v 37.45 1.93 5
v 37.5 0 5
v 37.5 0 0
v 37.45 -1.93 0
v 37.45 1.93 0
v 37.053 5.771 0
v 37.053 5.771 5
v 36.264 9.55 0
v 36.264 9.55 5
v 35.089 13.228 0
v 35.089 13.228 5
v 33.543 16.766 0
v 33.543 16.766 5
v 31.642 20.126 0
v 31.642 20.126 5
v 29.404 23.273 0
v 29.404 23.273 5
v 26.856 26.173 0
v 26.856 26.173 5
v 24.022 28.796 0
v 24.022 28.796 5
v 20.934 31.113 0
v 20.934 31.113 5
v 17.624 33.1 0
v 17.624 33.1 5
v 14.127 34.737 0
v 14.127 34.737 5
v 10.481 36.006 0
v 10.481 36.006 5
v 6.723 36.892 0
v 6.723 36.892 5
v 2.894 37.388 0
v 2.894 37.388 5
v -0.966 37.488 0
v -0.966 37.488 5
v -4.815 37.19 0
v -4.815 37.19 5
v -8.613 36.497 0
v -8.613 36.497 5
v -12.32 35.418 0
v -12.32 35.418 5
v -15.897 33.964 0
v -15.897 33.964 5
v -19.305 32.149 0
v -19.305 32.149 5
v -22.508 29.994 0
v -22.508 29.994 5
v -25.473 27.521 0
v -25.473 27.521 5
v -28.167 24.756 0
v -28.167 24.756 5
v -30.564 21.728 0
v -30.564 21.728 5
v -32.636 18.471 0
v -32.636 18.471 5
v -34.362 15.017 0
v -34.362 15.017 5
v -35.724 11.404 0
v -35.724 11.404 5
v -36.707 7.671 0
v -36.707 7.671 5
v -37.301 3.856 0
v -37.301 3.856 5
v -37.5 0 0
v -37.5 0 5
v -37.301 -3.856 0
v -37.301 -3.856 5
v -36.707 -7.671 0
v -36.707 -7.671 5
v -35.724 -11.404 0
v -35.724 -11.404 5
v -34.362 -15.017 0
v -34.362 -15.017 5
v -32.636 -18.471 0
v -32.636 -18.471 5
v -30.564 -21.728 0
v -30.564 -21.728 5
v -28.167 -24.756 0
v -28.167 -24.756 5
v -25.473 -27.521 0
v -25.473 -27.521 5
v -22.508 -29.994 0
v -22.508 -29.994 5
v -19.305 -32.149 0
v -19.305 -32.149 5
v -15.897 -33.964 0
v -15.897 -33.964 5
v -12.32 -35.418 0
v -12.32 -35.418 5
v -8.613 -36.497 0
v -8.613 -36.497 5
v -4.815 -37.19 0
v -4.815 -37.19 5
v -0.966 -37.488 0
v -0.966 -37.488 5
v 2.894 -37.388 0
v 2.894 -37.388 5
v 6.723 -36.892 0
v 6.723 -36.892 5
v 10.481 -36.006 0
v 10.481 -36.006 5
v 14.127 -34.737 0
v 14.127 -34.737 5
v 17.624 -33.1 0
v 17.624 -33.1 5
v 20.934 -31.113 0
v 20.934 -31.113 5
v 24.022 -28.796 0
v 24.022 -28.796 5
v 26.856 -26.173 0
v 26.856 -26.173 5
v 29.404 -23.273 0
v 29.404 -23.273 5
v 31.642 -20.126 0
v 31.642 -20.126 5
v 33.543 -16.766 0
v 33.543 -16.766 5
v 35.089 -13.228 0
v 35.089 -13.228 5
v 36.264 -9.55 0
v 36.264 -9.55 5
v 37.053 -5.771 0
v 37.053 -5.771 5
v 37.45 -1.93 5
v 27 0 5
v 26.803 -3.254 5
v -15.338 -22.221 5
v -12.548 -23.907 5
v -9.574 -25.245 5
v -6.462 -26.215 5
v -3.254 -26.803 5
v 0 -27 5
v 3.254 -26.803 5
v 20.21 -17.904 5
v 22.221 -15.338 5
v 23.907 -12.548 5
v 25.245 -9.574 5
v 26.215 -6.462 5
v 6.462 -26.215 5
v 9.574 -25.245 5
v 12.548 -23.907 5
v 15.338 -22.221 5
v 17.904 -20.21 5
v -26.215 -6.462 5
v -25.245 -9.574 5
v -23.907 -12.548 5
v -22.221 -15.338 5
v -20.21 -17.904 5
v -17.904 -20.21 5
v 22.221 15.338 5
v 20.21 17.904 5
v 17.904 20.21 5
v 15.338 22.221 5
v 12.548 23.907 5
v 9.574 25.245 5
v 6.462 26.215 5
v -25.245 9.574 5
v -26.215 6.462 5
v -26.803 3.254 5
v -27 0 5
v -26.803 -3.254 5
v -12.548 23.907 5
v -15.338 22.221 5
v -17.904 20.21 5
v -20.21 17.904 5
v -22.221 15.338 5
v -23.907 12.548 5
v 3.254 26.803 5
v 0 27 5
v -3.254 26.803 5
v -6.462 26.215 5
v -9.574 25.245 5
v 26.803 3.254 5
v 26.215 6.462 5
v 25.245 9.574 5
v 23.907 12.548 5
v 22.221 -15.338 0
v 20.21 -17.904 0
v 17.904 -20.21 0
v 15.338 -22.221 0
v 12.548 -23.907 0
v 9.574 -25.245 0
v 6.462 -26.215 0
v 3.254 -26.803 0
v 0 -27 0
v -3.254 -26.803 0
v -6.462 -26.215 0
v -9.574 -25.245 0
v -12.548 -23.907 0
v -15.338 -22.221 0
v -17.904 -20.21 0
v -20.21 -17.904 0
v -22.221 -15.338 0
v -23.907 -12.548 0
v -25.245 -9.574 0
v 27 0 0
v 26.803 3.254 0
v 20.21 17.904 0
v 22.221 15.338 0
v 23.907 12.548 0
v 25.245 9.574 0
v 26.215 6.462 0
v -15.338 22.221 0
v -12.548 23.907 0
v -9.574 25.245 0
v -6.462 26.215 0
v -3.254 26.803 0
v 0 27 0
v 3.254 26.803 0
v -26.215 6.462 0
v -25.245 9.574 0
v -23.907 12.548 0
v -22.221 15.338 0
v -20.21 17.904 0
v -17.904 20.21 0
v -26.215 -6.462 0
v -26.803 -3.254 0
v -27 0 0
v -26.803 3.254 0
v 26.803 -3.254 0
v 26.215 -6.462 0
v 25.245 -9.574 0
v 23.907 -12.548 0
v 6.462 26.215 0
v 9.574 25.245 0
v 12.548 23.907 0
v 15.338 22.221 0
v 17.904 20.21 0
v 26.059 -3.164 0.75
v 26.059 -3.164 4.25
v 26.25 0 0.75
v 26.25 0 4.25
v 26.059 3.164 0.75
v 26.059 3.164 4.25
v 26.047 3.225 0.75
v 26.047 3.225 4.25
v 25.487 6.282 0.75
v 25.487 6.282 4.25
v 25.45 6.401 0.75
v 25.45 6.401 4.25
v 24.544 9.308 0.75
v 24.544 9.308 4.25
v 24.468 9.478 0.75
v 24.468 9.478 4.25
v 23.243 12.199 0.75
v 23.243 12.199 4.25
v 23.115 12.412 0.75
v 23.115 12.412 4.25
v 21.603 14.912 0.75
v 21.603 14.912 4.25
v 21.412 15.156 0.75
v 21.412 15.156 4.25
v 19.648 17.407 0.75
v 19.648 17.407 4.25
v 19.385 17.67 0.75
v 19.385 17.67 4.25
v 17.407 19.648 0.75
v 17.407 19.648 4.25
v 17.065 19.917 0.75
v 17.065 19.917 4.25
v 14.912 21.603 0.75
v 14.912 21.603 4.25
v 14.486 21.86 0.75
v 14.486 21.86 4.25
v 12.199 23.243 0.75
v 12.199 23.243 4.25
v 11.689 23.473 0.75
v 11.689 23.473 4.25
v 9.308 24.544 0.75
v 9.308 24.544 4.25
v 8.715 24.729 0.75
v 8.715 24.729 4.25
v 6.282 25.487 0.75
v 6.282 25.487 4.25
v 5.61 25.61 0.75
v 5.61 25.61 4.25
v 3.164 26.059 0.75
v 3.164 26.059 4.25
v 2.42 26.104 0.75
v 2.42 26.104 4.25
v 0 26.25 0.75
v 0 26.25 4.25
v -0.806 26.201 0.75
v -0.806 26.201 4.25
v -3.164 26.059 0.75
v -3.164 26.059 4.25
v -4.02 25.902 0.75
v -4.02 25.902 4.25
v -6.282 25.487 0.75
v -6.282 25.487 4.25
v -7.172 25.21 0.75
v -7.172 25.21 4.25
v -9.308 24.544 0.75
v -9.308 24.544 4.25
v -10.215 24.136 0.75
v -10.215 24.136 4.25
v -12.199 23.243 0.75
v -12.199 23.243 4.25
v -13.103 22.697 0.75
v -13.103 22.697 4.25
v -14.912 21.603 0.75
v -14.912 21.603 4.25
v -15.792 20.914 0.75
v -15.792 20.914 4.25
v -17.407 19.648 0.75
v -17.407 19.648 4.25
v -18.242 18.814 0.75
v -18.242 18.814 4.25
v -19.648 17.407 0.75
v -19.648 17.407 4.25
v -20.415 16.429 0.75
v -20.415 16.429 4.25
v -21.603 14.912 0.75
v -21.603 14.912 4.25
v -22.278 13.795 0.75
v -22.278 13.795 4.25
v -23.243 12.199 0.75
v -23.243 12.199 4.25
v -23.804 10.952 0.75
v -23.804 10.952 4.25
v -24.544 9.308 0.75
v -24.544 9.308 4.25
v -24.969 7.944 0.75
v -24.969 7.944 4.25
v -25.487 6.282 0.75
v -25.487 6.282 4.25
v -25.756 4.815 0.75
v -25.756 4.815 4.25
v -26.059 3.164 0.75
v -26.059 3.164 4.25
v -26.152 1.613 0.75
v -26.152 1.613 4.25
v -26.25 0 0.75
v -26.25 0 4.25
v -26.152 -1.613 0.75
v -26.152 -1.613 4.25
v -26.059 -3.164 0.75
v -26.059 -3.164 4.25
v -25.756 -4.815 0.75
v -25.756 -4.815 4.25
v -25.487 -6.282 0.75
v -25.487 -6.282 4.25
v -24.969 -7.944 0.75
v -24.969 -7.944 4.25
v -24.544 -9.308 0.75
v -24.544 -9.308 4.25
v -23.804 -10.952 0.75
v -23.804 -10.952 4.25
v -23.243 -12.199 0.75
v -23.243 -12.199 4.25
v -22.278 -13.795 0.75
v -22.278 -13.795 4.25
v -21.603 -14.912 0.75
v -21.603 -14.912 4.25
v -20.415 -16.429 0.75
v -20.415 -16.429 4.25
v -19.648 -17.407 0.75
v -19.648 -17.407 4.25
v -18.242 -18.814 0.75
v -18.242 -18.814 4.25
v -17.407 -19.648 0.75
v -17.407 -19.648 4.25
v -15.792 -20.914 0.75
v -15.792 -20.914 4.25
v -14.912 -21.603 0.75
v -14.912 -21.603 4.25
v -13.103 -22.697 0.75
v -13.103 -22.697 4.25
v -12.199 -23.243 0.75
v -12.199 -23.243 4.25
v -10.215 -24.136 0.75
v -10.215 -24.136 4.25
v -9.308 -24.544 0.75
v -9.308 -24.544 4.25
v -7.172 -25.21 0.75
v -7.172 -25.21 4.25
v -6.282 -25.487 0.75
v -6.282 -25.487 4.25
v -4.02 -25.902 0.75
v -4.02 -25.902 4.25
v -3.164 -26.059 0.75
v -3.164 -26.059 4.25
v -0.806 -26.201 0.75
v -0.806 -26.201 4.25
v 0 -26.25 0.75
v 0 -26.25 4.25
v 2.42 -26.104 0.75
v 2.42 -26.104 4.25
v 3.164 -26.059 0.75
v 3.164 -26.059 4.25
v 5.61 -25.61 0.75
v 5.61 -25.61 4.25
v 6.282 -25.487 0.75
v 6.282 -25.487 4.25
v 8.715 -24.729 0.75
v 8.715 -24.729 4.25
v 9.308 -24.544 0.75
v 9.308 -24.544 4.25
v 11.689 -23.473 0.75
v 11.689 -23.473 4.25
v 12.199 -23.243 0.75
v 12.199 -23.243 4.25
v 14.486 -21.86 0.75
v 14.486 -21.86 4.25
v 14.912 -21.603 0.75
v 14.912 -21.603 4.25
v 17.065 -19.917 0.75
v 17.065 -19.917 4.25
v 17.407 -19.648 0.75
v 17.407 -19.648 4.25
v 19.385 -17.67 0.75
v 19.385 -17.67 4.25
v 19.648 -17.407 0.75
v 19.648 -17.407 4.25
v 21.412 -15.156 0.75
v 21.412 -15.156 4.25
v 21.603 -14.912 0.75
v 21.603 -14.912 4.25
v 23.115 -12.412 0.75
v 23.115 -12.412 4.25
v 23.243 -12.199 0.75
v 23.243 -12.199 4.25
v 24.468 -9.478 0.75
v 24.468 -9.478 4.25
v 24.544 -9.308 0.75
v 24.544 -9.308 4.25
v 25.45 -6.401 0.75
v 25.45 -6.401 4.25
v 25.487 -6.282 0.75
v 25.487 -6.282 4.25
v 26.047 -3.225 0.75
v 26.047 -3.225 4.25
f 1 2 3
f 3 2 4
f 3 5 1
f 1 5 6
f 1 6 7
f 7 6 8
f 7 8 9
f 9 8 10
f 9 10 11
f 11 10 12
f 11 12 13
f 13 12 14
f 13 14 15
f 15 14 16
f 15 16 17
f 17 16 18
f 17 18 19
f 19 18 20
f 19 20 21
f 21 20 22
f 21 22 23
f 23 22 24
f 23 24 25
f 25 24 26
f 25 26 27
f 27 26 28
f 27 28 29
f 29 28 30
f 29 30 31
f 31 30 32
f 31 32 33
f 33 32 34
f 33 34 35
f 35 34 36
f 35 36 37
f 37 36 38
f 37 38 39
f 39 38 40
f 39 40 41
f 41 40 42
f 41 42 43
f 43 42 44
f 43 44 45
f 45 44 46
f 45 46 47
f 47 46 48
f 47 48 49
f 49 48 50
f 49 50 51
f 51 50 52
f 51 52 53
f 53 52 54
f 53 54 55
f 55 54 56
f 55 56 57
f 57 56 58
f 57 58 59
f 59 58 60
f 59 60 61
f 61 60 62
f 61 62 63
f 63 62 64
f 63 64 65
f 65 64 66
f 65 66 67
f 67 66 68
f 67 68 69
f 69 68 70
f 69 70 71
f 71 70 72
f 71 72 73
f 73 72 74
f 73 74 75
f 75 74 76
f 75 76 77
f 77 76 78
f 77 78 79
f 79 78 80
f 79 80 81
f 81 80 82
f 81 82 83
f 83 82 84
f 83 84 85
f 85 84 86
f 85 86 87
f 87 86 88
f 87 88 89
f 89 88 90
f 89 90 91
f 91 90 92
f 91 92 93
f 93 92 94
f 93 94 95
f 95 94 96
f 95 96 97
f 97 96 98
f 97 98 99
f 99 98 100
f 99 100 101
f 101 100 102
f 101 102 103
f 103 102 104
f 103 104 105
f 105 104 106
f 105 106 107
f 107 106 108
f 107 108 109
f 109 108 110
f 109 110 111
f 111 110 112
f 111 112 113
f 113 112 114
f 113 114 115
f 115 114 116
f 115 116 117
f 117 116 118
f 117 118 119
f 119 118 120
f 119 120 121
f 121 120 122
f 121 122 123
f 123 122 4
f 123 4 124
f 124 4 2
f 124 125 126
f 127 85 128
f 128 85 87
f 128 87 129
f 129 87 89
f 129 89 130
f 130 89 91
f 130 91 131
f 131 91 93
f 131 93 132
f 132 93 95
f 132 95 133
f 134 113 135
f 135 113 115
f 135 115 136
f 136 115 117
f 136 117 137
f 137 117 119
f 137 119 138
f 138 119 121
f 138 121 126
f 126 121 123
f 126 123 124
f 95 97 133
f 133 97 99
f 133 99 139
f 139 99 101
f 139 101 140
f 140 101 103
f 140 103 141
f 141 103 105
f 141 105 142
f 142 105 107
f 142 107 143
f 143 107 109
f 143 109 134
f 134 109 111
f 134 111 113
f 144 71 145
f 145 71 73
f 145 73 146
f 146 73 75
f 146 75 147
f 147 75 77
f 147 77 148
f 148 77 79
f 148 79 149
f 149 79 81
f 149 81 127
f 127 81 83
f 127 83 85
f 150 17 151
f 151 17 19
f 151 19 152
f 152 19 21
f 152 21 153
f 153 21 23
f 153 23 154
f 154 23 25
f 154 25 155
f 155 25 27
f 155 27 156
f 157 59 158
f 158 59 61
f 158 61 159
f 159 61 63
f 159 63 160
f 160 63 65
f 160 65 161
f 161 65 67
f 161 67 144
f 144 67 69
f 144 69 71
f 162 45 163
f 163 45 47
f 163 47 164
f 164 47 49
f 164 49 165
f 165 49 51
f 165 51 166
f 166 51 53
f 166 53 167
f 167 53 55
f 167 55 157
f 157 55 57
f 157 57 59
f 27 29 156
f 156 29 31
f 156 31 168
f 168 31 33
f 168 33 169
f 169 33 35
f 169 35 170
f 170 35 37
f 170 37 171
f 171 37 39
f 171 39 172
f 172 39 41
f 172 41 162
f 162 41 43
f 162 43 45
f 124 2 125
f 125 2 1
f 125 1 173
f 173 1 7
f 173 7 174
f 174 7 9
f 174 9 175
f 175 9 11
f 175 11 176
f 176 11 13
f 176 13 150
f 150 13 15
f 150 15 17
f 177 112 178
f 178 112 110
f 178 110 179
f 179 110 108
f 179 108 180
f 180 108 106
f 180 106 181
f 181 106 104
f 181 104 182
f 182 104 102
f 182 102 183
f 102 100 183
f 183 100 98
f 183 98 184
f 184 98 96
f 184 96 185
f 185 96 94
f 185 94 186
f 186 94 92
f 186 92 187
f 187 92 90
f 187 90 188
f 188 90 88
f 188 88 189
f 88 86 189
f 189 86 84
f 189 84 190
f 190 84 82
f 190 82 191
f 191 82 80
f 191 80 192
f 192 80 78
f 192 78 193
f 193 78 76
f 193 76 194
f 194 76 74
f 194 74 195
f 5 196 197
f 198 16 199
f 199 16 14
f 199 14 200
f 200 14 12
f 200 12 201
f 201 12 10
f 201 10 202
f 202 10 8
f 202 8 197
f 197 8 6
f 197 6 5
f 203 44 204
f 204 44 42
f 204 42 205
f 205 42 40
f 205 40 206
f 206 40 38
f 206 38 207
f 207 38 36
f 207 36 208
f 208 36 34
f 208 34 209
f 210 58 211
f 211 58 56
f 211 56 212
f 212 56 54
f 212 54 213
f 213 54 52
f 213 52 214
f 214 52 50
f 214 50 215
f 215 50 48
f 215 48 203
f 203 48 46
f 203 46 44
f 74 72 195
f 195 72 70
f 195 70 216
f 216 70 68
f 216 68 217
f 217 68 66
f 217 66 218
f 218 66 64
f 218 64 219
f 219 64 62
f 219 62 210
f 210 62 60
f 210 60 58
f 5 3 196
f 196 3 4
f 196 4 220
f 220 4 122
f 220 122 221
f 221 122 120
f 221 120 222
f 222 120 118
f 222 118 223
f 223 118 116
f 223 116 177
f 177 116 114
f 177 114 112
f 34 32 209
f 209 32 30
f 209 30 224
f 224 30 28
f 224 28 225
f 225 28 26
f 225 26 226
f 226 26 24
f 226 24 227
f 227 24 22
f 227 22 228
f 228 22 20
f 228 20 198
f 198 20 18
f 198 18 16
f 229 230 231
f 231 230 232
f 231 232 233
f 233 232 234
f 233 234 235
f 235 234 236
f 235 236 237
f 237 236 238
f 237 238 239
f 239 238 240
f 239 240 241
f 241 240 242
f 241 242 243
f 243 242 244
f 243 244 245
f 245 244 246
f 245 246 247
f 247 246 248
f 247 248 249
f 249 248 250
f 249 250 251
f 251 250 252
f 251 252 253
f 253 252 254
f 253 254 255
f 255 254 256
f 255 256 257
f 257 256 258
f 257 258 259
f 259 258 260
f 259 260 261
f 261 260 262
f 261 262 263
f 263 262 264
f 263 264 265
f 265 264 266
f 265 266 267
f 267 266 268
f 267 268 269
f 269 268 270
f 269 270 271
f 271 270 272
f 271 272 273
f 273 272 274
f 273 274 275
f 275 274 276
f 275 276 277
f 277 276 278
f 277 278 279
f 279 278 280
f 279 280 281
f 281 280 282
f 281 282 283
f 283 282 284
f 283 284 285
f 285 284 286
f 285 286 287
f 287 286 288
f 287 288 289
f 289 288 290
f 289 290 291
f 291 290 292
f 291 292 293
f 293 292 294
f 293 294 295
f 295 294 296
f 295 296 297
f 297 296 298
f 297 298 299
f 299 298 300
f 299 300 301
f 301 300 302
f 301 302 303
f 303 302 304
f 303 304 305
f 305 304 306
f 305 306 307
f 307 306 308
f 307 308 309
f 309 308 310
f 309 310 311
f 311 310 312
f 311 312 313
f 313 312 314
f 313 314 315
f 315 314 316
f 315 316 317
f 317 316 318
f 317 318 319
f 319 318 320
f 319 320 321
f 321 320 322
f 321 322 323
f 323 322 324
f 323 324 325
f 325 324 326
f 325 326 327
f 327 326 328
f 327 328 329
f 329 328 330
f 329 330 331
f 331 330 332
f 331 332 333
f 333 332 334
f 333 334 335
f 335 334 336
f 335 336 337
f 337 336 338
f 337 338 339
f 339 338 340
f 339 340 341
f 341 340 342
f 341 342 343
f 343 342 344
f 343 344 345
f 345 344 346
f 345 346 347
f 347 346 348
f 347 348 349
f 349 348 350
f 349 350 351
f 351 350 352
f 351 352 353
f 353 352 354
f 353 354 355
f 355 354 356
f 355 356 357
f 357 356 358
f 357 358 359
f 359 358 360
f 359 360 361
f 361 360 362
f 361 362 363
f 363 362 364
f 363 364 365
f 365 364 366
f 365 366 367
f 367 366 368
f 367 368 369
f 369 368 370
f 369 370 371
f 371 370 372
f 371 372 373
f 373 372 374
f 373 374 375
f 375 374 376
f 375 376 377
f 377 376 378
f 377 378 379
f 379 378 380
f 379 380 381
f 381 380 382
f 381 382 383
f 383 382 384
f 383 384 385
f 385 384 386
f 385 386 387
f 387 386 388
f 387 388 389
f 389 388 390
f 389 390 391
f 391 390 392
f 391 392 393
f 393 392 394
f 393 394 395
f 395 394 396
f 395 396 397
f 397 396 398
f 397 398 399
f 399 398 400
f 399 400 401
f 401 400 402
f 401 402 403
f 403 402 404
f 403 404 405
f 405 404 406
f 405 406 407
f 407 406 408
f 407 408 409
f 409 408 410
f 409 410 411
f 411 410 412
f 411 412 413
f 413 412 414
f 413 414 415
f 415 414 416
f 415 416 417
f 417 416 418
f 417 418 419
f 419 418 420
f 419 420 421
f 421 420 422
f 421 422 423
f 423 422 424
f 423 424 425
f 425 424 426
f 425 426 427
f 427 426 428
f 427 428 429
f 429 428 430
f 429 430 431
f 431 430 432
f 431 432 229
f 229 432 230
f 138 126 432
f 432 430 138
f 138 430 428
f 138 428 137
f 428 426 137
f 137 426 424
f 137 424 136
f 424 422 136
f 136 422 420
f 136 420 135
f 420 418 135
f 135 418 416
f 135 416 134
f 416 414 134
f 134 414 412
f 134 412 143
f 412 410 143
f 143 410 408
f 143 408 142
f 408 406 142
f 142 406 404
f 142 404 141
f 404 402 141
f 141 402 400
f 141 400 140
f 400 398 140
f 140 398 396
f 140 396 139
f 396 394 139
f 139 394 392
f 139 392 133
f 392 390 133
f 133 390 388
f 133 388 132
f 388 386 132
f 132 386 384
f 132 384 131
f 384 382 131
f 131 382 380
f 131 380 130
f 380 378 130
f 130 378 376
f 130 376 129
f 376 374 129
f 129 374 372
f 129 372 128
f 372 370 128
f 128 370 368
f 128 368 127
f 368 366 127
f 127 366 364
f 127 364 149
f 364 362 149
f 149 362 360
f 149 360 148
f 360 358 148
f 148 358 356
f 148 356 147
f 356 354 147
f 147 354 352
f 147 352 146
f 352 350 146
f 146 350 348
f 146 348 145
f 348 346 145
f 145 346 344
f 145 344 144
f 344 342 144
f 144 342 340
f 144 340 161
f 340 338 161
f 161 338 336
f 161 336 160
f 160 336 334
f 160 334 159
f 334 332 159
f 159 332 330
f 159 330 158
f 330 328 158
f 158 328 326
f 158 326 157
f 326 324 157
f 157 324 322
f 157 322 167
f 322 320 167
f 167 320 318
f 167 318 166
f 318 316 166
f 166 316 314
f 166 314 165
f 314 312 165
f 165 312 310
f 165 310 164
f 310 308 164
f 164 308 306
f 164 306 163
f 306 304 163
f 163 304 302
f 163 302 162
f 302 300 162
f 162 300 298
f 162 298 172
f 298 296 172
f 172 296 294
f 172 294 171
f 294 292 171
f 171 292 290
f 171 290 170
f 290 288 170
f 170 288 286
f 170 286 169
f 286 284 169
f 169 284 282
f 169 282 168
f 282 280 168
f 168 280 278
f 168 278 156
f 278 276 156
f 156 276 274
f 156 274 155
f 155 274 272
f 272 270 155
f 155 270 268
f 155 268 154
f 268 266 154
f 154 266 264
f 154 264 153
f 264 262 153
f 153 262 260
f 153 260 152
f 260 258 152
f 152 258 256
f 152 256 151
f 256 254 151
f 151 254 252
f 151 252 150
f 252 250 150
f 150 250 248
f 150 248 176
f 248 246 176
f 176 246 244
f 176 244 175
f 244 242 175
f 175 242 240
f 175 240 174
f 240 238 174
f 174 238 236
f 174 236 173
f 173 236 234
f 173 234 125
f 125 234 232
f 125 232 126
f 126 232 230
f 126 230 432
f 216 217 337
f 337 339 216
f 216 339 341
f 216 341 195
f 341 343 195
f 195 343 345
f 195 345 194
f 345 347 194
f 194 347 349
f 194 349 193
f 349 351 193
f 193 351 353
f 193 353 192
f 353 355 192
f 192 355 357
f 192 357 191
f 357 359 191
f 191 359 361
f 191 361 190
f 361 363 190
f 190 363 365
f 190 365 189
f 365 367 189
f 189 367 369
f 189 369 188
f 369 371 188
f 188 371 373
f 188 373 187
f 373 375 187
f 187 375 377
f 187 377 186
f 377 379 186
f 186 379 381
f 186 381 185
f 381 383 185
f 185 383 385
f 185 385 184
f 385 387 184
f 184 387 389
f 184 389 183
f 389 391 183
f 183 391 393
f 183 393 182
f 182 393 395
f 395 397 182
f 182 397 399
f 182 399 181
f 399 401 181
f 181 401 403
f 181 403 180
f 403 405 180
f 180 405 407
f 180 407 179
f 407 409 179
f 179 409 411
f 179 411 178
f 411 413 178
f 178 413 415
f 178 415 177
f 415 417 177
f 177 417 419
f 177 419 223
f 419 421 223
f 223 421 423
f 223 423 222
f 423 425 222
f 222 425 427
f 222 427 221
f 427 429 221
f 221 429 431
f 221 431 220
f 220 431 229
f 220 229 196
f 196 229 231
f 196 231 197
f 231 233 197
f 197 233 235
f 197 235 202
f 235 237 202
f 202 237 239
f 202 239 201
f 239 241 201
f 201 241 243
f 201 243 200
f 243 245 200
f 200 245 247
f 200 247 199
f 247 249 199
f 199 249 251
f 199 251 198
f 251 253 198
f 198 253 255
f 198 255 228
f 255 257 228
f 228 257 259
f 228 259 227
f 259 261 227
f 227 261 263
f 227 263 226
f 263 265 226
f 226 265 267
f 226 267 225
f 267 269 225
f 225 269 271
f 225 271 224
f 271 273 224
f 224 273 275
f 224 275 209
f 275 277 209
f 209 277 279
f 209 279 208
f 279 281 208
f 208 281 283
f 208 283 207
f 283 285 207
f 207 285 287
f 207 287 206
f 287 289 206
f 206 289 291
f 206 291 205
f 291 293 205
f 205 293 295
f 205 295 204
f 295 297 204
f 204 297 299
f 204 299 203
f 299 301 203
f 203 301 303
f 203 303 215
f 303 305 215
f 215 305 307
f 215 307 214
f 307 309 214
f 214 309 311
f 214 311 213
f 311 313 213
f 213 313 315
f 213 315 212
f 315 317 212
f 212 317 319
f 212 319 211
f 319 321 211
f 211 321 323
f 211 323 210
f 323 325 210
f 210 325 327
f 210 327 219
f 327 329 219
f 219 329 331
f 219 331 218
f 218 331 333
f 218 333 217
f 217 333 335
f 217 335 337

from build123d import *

# Parameters (mm, degrees)
GUARD_BASE_R     = 37.5
GUARD_DEPTH      = 5
AXLE_HOLE_BASE_R = 26.25
AXLE_HOLE_DEPTH  = 6


with BuildPart() as part:
    # Guard base → Guard (new body)
    with BuildSketch(Plane.XY):
        Circle(GUARD_BASE_R)
    extrude(amount=GUARD_DEPTH)

    # Axle hole base → Axle hole (cut, through all)
    with BuildSketch(Plane.XY.offset(5)):
        Circle(AXLE_HOLE_BASE_R)
    extrude(amount=-AXLE_HOLE_DEPTH, mode=Mode.SUBTRACT)

    # Mate ring room base → Mate ring room (revolve, cut)
    with BuildSketch(Plane(origin=(0, 0, 0), x_dir=(1, 0, 0), z_dir=(0, 1, 0))):
        Polygon((26.25, -5), (27, -5), (26.25, -4.25), align=None)
        Polygon((26.25, 0), (27, 0), (26.25, -0.75), align=None)
    revolve(axis=Axis((0, 0, 0), (0, 0, -1)), mode=Mode.SUBTRACT)


solid = part.part
